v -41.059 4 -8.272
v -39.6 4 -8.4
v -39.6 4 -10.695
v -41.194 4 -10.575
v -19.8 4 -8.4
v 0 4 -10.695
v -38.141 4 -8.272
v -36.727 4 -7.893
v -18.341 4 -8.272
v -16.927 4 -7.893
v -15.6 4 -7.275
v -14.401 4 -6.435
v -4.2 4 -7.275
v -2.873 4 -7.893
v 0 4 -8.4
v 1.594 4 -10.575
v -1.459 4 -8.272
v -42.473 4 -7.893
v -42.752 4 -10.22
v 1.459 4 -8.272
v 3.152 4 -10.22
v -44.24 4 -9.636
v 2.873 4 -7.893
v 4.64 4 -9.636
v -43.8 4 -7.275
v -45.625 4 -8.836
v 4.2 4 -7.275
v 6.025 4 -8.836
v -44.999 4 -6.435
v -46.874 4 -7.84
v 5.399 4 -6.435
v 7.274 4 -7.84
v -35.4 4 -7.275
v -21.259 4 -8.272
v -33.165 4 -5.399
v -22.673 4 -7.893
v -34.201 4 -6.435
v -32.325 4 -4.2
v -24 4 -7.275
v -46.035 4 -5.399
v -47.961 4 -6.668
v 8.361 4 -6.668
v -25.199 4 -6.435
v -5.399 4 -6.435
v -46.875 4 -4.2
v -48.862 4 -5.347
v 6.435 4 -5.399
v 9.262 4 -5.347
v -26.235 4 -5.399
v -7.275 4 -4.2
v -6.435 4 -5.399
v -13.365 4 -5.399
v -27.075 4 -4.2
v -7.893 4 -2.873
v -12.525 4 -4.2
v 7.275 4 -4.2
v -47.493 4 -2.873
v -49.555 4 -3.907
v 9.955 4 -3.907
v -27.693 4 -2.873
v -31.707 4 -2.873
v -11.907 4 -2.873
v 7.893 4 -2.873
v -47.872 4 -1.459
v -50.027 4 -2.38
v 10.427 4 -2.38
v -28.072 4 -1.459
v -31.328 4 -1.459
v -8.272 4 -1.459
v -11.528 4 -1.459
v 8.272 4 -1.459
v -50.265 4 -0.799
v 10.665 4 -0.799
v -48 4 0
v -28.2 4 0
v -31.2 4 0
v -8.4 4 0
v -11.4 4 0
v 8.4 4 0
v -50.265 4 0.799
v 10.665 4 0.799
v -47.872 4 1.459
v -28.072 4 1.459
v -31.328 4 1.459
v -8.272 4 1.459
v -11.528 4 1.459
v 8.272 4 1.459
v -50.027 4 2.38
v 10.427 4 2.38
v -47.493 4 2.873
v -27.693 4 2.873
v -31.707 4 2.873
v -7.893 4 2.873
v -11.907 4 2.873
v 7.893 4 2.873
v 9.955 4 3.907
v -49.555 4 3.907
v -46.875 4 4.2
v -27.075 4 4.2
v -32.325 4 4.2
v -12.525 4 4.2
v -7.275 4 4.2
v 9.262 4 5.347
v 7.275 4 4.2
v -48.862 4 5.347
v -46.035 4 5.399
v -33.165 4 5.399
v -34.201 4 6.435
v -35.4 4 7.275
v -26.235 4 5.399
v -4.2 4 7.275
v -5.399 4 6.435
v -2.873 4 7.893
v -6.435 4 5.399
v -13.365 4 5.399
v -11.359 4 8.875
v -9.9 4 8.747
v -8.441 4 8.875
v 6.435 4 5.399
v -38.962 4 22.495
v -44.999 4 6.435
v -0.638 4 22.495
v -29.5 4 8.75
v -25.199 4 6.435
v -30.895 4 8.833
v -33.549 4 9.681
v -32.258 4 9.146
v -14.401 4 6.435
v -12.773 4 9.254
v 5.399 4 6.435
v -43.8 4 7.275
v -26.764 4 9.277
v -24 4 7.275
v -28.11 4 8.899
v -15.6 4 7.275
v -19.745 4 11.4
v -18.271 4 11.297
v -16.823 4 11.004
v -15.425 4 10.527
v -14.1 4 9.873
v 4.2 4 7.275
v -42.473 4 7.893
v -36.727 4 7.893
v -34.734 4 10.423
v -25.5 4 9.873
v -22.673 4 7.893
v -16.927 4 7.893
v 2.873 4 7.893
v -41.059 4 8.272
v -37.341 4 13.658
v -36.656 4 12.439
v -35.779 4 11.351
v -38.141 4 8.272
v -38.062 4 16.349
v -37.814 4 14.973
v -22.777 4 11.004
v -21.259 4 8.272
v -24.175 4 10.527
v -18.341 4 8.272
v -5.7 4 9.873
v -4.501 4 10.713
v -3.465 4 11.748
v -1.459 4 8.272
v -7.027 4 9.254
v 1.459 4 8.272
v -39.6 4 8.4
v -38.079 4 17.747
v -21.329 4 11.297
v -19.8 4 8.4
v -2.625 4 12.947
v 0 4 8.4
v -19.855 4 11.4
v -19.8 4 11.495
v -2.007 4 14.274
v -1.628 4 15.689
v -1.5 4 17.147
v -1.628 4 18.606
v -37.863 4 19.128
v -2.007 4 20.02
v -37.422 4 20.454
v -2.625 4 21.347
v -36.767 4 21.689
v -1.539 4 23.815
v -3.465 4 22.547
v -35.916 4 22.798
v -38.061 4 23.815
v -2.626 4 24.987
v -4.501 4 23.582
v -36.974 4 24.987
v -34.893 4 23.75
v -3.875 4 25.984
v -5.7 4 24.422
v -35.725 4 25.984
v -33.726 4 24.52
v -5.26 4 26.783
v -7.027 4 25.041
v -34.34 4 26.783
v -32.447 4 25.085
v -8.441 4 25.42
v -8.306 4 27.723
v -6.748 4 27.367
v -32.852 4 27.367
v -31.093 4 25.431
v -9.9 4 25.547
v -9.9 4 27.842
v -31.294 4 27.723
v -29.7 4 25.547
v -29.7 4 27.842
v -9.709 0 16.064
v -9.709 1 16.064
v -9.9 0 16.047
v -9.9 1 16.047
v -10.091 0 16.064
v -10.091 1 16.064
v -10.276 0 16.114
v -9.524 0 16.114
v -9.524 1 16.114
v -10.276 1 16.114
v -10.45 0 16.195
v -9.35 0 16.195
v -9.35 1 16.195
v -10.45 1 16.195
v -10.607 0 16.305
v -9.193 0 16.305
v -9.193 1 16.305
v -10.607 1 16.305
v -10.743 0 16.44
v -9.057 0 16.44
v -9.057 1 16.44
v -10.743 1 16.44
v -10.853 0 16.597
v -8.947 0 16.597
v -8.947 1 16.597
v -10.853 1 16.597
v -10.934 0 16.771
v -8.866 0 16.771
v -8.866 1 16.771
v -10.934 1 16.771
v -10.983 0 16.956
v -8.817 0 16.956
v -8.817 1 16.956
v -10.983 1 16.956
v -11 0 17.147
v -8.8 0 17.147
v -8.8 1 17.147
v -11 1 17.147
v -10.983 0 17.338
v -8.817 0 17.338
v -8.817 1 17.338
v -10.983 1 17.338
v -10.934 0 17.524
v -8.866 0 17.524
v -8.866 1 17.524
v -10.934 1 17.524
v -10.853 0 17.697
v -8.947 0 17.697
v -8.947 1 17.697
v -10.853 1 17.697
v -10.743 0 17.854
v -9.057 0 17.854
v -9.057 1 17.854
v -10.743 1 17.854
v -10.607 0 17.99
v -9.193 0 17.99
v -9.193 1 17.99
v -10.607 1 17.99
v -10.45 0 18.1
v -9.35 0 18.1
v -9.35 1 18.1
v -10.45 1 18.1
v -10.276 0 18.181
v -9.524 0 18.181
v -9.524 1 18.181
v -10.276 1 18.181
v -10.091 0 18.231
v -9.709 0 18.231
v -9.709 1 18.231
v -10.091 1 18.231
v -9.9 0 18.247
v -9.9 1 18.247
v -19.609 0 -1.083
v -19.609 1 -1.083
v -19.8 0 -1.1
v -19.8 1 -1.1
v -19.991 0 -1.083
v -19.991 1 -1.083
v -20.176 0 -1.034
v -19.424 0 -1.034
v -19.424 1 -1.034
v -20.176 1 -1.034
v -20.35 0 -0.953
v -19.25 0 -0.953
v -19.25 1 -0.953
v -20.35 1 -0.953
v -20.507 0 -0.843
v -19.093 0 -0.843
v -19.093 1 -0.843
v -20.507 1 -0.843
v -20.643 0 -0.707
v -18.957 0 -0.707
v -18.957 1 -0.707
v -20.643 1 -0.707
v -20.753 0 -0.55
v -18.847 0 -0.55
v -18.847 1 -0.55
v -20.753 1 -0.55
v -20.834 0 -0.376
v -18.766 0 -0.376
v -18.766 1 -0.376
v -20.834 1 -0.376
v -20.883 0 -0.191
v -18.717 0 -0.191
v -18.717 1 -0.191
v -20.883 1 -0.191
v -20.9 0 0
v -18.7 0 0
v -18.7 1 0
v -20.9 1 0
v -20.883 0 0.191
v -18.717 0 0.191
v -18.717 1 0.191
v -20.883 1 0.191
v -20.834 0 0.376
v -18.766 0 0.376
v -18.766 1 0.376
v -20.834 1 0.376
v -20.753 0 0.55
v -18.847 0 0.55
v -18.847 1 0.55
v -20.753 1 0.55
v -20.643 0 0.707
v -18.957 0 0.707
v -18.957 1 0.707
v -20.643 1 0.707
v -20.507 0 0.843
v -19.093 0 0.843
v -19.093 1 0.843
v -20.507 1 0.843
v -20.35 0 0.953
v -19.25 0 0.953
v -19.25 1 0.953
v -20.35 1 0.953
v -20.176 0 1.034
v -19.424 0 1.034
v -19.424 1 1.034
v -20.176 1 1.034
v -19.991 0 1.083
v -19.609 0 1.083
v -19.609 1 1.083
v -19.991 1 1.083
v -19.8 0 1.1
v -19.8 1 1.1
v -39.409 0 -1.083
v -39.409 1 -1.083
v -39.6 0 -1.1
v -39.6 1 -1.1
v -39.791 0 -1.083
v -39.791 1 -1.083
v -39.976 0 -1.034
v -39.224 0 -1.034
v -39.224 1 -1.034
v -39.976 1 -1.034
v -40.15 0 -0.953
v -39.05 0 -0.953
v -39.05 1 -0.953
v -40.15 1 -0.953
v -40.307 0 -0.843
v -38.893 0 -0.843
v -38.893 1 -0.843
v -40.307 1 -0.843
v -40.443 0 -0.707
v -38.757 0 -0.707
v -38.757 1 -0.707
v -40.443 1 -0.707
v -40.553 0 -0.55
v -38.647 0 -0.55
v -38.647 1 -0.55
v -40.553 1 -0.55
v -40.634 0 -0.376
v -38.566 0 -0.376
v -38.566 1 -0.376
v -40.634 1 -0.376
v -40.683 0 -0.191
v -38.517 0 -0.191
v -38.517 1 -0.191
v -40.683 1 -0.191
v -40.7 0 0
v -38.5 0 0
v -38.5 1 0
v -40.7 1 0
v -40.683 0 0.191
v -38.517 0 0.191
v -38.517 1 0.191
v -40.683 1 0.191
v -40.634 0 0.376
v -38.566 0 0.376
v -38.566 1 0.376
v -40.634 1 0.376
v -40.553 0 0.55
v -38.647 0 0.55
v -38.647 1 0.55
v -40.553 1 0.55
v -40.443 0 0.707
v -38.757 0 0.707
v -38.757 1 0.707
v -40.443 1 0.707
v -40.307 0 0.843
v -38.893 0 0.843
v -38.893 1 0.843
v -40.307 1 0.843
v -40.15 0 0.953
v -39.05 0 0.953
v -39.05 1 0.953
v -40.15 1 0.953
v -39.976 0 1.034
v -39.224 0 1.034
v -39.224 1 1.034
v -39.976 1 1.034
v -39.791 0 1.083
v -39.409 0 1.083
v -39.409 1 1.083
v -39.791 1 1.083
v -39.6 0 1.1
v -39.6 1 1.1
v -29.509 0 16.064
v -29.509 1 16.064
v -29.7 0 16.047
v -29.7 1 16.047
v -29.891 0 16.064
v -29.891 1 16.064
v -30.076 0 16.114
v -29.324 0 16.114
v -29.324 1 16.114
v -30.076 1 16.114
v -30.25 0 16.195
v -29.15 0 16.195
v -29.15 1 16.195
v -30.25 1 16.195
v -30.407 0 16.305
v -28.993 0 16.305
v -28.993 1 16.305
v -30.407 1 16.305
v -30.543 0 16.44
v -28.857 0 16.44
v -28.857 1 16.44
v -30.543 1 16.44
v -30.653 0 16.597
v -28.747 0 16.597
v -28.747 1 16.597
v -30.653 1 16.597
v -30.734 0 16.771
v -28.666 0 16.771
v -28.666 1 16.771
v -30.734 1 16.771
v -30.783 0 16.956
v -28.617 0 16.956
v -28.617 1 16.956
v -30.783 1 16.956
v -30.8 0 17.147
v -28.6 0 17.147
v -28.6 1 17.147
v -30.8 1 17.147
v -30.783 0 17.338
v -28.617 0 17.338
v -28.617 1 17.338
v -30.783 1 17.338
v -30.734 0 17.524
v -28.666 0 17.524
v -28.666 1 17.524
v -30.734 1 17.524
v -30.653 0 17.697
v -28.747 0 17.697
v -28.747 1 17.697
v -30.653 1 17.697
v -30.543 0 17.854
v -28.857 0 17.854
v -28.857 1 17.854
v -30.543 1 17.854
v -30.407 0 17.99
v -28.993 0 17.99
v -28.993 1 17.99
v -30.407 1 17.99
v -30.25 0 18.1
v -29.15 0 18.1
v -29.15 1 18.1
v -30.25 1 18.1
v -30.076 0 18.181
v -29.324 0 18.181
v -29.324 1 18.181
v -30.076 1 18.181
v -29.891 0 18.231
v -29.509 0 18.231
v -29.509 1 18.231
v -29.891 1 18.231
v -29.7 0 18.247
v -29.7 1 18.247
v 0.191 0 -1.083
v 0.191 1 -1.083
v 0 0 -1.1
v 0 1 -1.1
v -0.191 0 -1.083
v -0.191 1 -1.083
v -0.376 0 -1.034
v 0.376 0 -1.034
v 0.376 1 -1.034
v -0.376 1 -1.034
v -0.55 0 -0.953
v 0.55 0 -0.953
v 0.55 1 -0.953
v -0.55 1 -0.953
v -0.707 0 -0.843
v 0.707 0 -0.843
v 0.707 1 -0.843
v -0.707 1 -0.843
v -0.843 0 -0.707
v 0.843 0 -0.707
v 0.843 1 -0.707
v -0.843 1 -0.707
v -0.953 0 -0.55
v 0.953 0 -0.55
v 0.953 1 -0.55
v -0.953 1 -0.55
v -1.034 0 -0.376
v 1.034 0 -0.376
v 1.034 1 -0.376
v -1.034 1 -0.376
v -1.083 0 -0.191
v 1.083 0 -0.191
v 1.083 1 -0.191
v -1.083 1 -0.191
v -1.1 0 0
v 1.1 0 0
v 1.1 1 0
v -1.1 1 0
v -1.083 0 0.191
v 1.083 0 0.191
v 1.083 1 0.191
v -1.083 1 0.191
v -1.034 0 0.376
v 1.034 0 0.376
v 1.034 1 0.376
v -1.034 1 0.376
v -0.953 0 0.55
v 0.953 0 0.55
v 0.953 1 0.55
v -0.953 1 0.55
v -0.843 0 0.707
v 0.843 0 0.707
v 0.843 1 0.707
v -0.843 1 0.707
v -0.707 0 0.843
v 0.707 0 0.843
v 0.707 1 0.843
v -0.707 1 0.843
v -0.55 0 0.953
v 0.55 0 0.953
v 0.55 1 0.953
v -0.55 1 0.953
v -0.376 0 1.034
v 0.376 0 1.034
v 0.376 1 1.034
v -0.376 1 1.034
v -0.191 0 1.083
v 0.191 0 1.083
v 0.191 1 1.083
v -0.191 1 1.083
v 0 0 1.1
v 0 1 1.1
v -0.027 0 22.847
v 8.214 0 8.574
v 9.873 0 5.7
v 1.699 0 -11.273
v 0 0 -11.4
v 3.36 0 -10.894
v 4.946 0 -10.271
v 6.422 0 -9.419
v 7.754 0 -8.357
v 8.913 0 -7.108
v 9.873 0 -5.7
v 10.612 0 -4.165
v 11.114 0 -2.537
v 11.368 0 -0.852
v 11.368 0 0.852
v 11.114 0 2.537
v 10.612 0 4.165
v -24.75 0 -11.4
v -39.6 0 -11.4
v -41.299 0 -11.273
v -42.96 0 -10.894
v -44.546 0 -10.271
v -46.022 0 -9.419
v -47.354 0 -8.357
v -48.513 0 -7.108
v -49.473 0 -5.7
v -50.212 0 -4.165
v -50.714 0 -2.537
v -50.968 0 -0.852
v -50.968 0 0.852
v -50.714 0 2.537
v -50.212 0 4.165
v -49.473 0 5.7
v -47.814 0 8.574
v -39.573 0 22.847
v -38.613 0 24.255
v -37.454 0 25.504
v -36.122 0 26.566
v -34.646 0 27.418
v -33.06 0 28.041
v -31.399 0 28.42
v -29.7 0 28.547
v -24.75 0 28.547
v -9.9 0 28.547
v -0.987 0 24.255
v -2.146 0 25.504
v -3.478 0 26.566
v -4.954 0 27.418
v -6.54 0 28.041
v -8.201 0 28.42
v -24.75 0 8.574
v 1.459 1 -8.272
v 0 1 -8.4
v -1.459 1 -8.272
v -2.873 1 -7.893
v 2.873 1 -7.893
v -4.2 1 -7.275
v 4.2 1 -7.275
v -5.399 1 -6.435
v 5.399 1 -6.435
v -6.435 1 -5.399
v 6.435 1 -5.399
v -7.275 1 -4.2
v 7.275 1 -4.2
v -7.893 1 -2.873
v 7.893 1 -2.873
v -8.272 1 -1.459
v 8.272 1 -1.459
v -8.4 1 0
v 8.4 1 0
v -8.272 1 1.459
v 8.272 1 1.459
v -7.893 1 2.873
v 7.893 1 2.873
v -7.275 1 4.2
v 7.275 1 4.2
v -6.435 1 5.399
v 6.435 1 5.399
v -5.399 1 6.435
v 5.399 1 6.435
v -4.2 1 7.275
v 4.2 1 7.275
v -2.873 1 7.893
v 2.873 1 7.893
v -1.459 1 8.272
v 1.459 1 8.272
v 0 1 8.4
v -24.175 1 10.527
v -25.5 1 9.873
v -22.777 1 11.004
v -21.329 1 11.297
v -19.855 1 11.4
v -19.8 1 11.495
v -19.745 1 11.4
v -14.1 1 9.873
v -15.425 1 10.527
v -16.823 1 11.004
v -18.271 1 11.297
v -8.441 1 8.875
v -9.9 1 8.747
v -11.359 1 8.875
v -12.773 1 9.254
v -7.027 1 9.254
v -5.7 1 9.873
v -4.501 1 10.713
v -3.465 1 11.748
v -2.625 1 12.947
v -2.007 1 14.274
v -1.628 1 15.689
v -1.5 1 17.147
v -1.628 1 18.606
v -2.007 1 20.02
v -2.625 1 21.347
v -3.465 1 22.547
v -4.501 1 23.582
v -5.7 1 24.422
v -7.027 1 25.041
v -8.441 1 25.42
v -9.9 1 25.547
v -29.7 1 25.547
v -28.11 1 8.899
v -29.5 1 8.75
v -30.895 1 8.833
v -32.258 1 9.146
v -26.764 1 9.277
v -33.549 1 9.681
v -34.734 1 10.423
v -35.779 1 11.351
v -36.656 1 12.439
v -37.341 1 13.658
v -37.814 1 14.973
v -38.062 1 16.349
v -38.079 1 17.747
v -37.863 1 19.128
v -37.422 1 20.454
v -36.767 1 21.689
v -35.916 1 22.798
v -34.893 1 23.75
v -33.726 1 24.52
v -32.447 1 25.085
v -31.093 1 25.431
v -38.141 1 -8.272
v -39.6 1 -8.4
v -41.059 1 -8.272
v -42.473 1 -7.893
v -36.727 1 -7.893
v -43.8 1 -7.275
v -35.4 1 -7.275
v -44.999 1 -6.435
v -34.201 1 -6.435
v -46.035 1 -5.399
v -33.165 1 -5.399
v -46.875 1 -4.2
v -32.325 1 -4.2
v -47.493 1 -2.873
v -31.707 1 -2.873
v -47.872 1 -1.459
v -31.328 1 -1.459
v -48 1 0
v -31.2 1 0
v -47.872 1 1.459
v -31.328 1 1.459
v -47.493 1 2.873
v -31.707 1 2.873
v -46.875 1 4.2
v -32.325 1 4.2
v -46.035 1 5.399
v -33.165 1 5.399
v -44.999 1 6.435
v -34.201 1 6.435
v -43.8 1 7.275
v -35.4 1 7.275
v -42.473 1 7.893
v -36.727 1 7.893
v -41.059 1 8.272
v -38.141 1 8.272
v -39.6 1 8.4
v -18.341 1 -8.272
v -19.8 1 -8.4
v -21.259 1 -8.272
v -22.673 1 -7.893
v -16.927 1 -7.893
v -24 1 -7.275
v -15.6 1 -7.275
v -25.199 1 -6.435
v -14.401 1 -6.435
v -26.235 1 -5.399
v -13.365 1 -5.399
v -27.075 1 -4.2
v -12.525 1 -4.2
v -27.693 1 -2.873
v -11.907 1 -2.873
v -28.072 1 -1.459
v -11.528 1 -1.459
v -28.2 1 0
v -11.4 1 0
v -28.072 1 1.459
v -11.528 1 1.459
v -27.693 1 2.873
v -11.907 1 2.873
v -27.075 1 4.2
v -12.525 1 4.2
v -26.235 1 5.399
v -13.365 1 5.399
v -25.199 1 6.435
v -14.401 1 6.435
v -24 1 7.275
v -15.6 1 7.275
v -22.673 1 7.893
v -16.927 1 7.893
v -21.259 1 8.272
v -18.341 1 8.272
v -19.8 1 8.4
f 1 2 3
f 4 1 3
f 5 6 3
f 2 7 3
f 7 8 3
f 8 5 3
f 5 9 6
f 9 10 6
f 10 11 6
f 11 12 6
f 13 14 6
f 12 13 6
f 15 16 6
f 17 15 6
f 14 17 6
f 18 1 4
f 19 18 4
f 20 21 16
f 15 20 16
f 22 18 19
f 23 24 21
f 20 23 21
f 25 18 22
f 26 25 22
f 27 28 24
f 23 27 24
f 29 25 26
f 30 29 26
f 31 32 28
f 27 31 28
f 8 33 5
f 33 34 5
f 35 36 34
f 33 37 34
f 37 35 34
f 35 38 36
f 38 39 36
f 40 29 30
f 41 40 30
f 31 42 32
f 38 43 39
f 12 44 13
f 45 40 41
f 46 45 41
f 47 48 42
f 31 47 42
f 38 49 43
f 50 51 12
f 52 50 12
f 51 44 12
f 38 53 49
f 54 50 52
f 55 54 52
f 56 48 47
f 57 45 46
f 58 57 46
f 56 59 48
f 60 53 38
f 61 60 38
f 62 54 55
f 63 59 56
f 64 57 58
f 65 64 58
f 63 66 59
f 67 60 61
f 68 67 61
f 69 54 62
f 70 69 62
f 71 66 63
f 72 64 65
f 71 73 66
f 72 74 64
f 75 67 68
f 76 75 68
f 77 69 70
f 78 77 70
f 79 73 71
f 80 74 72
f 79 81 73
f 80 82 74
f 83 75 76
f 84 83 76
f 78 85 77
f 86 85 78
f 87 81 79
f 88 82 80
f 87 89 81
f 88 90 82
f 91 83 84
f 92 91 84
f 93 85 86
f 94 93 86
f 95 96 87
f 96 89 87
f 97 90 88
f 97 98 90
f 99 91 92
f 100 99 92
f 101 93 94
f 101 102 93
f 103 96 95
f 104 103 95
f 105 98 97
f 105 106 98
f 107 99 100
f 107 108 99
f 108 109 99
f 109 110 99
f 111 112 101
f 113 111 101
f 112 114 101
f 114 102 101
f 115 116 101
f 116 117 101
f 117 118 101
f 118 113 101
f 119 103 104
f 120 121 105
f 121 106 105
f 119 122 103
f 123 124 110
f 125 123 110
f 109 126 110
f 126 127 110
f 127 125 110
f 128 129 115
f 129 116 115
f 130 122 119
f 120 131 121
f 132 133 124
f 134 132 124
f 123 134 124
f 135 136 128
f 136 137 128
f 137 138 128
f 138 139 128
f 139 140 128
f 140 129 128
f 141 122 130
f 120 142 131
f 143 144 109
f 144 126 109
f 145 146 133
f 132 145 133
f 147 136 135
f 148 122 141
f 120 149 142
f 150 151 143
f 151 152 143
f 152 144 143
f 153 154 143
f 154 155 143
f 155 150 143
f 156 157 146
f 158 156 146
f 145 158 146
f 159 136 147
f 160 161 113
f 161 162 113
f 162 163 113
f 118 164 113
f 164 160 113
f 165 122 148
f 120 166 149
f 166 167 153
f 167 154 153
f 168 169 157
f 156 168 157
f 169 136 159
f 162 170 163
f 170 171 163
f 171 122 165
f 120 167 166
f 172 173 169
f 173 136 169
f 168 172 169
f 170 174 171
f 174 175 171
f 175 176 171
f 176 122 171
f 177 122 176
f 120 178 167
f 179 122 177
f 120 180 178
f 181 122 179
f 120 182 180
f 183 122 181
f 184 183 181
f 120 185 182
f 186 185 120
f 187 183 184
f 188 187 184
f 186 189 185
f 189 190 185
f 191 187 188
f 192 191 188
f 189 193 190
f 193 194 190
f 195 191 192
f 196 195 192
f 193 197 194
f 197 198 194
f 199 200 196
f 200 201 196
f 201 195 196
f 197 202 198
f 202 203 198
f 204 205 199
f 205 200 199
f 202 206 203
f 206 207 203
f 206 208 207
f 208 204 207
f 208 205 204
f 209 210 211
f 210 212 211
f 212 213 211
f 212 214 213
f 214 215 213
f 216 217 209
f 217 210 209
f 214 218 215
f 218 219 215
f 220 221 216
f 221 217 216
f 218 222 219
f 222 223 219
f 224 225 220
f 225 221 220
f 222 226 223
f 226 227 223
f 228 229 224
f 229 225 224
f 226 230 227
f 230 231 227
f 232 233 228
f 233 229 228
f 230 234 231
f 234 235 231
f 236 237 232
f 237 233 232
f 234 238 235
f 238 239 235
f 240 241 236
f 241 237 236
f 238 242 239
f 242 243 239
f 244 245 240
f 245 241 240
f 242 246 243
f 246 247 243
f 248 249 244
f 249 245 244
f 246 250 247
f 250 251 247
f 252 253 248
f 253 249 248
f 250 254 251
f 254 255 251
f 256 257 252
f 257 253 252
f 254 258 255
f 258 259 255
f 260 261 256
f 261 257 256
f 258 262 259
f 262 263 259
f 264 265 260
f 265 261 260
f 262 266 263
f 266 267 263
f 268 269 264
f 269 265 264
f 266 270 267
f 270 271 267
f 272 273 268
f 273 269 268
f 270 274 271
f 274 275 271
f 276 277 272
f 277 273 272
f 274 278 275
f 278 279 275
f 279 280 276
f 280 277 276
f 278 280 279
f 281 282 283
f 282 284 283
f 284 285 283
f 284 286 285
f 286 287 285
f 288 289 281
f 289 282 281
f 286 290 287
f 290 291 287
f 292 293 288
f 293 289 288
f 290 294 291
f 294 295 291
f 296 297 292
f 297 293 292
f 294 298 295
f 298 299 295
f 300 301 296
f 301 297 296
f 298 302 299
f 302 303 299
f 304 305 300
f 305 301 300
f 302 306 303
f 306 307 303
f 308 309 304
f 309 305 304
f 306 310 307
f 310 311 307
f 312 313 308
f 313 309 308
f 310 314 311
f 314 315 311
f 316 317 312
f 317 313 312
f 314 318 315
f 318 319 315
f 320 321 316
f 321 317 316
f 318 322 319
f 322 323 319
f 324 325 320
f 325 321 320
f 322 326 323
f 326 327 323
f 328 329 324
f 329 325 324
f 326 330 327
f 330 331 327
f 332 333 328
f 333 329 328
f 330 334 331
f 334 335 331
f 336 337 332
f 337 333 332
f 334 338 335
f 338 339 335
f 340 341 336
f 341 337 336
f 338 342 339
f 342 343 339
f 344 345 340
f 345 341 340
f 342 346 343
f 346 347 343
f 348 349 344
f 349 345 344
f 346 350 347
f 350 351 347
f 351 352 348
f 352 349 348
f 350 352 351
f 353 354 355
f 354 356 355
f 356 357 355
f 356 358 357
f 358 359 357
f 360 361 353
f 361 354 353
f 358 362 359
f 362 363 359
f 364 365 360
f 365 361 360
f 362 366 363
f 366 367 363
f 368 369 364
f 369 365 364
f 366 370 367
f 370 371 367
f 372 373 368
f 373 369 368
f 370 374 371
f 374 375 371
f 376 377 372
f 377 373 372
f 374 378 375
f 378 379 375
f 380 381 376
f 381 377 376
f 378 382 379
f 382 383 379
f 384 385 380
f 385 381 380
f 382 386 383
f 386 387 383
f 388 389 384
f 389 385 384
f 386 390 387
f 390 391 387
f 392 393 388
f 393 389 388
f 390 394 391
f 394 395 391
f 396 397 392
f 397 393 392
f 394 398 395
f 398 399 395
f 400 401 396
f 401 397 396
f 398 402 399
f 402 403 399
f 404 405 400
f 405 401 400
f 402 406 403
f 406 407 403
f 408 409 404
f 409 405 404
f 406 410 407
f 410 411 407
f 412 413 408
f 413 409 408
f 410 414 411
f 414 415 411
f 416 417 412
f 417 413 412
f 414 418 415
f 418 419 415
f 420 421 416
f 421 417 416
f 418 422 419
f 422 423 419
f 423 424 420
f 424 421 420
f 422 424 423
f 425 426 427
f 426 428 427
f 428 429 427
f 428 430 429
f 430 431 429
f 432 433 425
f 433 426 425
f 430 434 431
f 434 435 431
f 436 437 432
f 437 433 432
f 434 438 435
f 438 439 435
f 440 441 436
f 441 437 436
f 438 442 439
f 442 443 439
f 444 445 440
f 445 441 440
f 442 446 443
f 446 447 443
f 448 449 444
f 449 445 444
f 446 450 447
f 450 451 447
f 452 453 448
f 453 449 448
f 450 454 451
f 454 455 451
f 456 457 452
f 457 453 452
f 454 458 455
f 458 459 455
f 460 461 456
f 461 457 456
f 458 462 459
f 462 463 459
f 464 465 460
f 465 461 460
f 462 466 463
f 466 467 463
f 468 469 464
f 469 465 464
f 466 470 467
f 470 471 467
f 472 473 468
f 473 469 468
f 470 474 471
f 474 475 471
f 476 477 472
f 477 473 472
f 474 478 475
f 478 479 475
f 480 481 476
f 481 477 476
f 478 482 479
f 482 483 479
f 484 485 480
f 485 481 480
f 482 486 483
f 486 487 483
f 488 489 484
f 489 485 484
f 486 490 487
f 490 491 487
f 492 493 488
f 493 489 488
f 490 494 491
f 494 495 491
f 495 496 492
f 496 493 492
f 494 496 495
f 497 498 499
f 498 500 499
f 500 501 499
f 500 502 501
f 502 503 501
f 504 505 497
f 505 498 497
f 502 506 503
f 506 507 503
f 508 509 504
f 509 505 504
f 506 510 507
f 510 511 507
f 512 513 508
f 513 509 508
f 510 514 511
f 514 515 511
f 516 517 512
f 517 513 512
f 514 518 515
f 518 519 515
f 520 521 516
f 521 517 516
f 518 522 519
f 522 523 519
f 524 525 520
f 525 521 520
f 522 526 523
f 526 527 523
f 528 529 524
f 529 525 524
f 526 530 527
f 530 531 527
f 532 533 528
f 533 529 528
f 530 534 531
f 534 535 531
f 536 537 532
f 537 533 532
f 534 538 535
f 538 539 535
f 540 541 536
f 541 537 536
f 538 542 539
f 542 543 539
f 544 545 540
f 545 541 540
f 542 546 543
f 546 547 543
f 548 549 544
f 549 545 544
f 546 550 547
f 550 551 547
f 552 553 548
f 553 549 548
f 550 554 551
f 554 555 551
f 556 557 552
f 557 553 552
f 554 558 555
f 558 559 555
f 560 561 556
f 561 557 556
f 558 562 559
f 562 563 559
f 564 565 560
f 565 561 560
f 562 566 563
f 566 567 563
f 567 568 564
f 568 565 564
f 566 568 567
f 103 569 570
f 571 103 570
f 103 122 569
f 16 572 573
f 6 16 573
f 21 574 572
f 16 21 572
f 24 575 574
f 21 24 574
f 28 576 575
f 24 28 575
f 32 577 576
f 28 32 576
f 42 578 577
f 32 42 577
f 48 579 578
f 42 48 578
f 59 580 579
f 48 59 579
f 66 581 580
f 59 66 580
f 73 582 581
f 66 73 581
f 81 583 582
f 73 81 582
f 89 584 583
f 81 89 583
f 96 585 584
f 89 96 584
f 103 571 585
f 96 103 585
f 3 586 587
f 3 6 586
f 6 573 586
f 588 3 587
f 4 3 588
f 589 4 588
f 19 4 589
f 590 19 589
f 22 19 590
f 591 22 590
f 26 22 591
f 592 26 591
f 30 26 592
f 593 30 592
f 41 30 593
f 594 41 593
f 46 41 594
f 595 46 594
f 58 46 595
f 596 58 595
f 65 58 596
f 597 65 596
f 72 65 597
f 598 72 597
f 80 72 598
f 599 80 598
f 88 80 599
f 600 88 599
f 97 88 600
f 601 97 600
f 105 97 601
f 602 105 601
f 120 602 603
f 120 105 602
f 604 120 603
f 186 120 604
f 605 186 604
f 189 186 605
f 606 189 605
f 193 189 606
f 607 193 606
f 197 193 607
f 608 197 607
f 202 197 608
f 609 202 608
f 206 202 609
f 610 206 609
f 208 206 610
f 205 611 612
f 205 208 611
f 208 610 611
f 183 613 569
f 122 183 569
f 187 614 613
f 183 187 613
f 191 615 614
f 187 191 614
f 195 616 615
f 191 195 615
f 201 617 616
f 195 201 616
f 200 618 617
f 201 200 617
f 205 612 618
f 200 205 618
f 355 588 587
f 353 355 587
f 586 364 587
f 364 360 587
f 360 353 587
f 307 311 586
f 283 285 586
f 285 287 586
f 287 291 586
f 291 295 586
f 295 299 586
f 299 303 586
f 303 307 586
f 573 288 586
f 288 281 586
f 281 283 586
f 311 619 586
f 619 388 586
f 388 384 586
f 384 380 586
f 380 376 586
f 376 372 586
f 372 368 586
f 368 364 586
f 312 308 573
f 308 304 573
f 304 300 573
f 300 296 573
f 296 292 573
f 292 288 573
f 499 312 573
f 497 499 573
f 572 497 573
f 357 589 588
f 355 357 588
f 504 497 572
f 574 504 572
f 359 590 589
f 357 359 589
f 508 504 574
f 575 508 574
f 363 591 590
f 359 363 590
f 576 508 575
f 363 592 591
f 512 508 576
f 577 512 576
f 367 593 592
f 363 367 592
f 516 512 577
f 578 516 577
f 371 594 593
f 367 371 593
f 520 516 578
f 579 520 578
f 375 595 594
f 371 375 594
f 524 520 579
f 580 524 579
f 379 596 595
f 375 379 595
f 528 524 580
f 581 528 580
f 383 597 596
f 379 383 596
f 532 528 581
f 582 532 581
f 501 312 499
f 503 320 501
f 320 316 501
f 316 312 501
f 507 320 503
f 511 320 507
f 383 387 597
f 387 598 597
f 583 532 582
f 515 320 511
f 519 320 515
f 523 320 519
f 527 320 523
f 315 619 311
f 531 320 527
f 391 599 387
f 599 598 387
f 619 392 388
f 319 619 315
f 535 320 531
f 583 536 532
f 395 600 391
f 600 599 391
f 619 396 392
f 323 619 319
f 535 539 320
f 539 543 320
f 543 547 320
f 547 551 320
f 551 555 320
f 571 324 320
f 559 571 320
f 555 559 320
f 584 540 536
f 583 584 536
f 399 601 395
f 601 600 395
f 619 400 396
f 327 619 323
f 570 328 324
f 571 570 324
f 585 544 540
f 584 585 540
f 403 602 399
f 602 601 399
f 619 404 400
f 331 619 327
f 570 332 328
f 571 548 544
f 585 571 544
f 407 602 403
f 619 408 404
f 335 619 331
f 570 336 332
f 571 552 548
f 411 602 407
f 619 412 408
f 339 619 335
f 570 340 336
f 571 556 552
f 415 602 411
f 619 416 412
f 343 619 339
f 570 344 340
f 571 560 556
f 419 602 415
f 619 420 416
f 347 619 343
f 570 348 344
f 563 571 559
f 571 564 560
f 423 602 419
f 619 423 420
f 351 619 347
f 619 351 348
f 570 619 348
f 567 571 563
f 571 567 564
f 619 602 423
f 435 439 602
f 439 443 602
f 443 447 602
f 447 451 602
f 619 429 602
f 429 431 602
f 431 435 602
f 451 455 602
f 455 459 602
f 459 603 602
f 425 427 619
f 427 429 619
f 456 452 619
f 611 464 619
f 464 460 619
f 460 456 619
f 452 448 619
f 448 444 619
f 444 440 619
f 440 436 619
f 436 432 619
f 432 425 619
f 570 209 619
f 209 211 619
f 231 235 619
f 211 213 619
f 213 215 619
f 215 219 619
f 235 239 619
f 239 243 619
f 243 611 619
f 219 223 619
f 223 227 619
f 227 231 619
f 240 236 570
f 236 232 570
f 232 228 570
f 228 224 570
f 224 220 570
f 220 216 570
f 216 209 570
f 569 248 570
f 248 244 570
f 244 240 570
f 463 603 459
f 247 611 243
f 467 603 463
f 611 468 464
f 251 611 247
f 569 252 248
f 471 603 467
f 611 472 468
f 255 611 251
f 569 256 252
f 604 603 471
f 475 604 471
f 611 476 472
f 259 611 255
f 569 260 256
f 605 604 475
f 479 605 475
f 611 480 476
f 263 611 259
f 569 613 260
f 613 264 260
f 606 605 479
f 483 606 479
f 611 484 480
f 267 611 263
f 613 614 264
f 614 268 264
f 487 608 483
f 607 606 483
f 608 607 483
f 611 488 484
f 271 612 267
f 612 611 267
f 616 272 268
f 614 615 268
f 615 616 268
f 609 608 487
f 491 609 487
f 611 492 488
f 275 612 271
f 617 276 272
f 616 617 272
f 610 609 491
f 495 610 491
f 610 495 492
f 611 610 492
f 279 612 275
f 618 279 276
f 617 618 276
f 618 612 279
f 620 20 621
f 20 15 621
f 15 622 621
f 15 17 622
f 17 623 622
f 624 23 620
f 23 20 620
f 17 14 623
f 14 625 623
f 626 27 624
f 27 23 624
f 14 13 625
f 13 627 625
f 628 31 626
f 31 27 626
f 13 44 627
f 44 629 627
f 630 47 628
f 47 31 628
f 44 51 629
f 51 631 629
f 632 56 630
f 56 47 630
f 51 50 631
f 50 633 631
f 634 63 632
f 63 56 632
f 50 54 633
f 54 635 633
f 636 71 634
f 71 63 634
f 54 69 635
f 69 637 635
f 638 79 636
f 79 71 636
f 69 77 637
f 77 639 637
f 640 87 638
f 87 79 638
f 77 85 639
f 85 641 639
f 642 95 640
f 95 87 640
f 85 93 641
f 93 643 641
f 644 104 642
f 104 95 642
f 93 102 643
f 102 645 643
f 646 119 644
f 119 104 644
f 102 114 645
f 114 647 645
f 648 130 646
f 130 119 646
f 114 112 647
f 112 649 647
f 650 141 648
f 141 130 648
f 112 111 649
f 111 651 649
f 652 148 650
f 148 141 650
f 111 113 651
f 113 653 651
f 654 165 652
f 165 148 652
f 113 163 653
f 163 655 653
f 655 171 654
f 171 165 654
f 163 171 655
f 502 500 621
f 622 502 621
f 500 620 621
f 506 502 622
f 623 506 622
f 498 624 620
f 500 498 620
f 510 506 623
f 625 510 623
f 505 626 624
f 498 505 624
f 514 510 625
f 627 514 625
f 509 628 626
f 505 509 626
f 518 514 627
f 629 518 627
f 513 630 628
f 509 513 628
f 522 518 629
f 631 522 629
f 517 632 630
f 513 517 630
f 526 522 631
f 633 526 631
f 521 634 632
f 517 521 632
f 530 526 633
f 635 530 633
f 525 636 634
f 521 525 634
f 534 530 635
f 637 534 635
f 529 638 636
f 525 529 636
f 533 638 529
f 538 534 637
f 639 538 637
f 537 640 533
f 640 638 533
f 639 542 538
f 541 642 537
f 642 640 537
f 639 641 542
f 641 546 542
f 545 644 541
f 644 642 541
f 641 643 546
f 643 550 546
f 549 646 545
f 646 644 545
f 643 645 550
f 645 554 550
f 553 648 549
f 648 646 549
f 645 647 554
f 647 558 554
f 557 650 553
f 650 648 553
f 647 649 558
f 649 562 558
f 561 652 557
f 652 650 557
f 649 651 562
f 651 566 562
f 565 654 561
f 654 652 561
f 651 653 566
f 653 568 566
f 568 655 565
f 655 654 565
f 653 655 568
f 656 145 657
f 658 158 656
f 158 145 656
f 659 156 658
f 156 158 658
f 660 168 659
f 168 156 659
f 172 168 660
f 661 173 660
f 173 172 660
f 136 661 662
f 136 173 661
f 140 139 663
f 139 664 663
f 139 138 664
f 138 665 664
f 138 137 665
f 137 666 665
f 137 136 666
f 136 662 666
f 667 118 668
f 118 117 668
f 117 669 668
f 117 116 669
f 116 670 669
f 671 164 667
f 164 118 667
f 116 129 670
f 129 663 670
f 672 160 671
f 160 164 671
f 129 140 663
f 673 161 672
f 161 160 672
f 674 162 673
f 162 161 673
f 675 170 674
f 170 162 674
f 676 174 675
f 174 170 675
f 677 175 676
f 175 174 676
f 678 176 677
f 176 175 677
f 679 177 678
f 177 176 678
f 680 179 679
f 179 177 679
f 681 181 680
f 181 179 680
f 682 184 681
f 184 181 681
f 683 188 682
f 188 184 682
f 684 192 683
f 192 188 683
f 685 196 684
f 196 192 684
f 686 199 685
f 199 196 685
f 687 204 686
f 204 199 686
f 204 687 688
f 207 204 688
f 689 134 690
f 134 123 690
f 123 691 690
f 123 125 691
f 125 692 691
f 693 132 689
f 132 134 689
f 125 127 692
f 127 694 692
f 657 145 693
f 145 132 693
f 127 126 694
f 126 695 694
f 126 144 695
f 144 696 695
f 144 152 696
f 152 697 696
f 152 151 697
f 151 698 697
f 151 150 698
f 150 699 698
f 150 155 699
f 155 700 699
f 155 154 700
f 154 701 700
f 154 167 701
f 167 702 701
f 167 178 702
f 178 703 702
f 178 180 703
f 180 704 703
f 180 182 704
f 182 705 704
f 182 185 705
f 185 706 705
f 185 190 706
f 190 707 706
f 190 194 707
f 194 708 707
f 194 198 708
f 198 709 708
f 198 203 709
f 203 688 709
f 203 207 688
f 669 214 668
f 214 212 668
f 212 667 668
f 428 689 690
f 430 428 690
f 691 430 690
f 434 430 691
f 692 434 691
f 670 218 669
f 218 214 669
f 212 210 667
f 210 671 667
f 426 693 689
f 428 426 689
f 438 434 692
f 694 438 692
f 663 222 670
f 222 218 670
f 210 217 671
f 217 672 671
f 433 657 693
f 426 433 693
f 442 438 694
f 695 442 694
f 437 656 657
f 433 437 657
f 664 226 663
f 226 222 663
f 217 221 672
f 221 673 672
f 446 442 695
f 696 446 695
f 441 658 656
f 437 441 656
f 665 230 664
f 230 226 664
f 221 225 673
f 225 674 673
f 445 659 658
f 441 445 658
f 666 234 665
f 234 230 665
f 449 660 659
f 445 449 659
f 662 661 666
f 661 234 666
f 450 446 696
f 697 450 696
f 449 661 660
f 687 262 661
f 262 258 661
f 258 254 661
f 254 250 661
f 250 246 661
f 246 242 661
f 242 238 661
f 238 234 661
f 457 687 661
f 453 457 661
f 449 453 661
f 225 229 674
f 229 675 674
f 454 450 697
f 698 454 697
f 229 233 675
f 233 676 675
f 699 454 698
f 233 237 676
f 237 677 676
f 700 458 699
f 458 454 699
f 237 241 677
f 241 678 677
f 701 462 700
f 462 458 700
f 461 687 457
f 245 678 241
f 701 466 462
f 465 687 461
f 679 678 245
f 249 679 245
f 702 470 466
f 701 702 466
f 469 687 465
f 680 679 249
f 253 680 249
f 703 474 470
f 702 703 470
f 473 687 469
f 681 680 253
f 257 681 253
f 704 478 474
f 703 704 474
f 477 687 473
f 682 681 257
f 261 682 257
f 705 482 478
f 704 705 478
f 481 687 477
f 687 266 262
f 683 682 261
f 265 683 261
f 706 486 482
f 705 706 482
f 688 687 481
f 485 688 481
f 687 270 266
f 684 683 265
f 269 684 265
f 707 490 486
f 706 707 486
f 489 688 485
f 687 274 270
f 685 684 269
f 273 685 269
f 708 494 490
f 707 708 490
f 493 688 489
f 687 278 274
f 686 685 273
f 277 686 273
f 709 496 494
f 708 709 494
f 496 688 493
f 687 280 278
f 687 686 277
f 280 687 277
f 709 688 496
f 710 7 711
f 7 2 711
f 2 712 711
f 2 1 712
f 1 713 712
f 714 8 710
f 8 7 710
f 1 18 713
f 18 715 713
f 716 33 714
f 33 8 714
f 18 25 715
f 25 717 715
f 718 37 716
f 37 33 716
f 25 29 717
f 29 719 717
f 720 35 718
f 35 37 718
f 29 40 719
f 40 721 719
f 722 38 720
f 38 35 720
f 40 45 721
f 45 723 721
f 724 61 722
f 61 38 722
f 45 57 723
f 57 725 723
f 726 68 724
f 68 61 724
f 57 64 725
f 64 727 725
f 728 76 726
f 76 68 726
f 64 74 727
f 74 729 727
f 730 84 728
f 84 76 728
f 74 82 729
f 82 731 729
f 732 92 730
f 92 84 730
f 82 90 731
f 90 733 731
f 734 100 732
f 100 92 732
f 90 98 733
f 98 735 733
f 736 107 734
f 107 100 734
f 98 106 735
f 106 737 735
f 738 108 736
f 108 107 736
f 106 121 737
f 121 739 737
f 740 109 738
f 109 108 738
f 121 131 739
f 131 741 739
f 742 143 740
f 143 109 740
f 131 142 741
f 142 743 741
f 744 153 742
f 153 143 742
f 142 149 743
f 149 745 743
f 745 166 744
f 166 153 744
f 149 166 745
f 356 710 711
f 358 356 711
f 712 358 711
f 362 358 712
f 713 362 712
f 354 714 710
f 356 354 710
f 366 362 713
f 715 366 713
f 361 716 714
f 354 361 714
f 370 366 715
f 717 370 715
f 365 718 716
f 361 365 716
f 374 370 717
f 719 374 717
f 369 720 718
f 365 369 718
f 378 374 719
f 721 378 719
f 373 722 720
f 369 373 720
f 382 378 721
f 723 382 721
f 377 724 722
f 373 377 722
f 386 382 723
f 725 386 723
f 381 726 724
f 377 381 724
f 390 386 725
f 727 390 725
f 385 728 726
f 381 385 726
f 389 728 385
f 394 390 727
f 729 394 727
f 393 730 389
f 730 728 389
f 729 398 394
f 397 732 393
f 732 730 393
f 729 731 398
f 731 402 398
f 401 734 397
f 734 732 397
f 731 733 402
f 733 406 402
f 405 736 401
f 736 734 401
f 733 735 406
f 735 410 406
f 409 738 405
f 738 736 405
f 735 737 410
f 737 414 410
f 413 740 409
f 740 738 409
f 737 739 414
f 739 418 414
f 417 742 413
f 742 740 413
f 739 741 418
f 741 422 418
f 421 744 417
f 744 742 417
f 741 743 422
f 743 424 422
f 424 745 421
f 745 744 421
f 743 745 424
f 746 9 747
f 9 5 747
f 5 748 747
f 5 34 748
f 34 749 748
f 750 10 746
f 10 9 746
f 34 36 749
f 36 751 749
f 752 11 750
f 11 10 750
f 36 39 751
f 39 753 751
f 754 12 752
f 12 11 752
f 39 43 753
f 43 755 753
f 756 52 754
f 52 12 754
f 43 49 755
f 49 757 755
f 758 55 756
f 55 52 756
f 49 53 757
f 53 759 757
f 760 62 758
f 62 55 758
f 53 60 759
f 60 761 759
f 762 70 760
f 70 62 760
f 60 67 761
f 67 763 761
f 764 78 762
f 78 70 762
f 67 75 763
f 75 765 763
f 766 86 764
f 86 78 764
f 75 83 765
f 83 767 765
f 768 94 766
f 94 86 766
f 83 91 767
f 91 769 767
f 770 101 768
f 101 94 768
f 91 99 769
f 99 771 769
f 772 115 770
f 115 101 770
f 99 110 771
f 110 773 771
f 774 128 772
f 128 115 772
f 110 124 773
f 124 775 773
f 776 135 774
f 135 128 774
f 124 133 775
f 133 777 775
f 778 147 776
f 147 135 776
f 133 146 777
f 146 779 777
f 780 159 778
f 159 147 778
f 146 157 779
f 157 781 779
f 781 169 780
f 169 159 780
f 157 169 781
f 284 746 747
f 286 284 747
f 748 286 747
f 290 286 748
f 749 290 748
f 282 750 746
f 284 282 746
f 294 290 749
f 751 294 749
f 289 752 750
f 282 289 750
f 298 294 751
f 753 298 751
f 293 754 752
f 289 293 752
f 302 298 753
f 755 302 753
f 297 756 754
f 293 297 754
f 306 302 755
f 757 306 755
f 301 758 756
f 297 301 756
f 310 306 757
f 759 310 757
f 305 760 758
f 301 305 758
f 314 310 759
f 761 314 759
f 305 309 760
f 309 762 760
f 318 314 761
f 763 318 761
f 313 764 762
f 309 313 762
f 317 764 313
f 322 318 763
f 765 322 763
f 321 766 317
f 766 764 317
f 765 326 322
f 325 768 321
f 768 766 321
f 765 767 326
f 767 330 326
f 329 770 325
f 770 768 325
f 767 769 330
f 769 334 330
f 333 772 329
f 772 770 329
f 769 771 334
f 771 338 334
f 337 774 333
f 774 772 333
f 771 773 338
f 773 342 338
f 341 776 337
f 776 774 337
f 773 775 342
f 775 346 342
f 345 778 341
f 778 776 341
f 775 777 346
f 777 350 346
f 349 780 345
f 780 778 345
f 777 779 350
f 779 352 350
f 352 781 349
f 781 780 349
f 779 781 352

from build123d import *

# Parameters (mm, degrees)
BOSS_EXTRUDE1_DEPTH = 4
BOSS_EXTRUDE1_TAPER = 10
CUT_EXTRUDE1_START  = 4
SKETCH1_3_R         = 1.1
CUT_EXTRUDE1_DEPTH  = 4
CUT_EXTRUDE2_START  = 4
SKETCH1_4_R         = 8.4
SKETCH1_4_R_2       = 1.1
CUT_EXTRUDE2_DEPTH  = 3


with BuildPart() as part:
    # Sketch1 → Boss-Extrude1 (new body)
    with BuildSketch(Plane(origin=(0, 0, 0), x_dir=(1, 0, 0), z_dir=(0, 1, 0))):
        with BuildLine():
            Line((-49.472689603, -5.7), (-39.572689603, -22.847302995))
            ThreePointArc((-39.572689603, -22.847302995), (-35.4, -27.019992598), (-29.7, -28.547302995))
            Line((-29.7, -28.547302995), (-9.9, -28.547302995))
            ThreePointArc((-9.9, -28.547302995), (-4.2, -27.019992598), (-0.027310397, -22.847302995))
            Line((-0.027310397, -22.847302995), (9.872689603, -5.7))
            ThreePointArc((9.872689603, -5.7), (9.872689603, 5.7), (0, 11.4))
            Line((0, 11.4), (-39.6, 11.4))
            ThreePointArc((-39.6, 11.4), (-49.472689603, 5.7), (-49.472689603, -5.7))
        make_face()
    extrude(amount=BOSS_EXTRUDE1_DEPTH, taper=BOSS_EXTRUDE1_TAPER)

    # Sketch1<3> → Cut-Extrude1 (cut)
    with BuildSketch(Plane(origin=(0, 0, 0), x_dir=(1, 0, 0), z_dir=(0, 1, 0)).offset(CUT_EXTRUDE1_START)):
        with Locations(Location((-9.9, -17.147302995, 0), (0, 0, 270))):
            Circle(SKETCH1_3_R)
        with Locations(Location((-19.8, 0, 0), (0, 0, 270))):
            Circle(SKETCH1_3_R)
        with Locations(Location((0, 0, 0), (0, 0, 270))):
            Circle(SKETCH1_3_R)
        with Locations(Location((-29.7, -17.147302995, 0), (0, 0, 270))):
            Circle(SKETCH1_3_R)
        with Locations(Location((-39.6, 0, 0), (0, 0, 270))):
            Circle(SKETCH1_3_R)
    extrude(amount=-CUT_EXTRUDE1_DEPTH, mode=Mode.SUBTRACT)

    # Sketch1<4> → Cut-Extrude2 (cut)
    # profile 1 of 4: a face of its own
    with BuildSketch(Plane(origin=(0, 0, 0), x_dir=(1, 0, 0), z_dir=(0, 1, 0)).offset(CUT_EXTRUDE2_START)):
        with Locations(Location((0, 0, 0), (0, 0, 270))):
            Circle(SKETCH1_4_R)
        with Locations(Location((0, 0, 0), (0, 0, 270))):
            Circle(SKETCH1_4_R_2, mode=Mode.SUBTRACT)
    # profile 2 of 4: a face of its own
    with BuildSketch(Plane(origin=(0, 0, 0), x_dir=(1, 0, 0), z_dir=(0, 1, 0)).offset(CUT_EXTRUDE2_START)):
        with BuildLine():
            Line((-29.7, -25.547302995), (-9.9, -25.547302995))
            ThreePointArc((-9.9, -25.547302995), (-1.786223222, -14.97322241), (-14.100001087, -9.872690231))
            ThreePointArc((-14.100001087, -9.872690231), (-16.822981756, -11.004424673), (-19.745150662, -11.39986805))
            ThreePointArc((-19.745150662, -11.39986805), (-19.772689603, -11.447302995), (-19.8, -11.494869891))
            ThreePointArc((-19.8, -11.494869891), (-19.827310397, -11.447302995), (-19.854849338, -11.39986805))
            ThreePointArc((-19.854849338, -11.39986805), (-22.777018876, -11.004424502), (-25.500000049, -9.872689575))
            ThreePointArc((-25.500000049, -9.872689575), (-37.813776948, -14.973223043), (-29.7, -25.547302995))
        make_face()
        with Locations(Location((-9.9, -17.147302995, 0), (0, 0, 270))):
            Circle(SKETCH1_4_R_2, mode=Mode.SUBTRACT)
        with Locations(Location((-29.7, -17.147302995, 0), (0, 0, 270))):
            Circle(SKETCH1_4_R_2, mode=Mode.SUBTRACT)
    # profile 3 of 4: a face of its own
    with BuildSketch(Plane(origin=(0, 0, 0), x_dir=(1, 0, 0), z_dir=(0, 1, 0)).offset(CUT_EXTRUDE2_START)):
        with Locations(Location((-19.8, 0, 0), (0, 0, 270))):
            Circle(SKETCH1_4_R)
        with Locations(Location((-19.8, 0, 0), (0, 0, 270))):
            Circle(SKETCH1_4_R_2, mode=Mode.SUBTRACT)
    # profile 4 of 4: a face of its own
    with BuildSketch(Plane(origin=(0, 0, 0), x_dir=(1, 0, 0), z_dir=(0, 1, 0)).offset(CUT_EXTRUDE2_START)):
        with Locations(Location((-39.6, 0, 0), (0, 0, 270))):
            Circle(SKETCH1_4_R)
        with Locations(Location((-39.6, 0, 0), (0, 0, 270))):
            Circle(SKETCH1_4_R_2, mode=Mode.SUBTRACT)
    extrude(amount=-CUT_EXTRUDE2_DEPTH, mode=Mode.SUBTRACT)


solid = part.part
